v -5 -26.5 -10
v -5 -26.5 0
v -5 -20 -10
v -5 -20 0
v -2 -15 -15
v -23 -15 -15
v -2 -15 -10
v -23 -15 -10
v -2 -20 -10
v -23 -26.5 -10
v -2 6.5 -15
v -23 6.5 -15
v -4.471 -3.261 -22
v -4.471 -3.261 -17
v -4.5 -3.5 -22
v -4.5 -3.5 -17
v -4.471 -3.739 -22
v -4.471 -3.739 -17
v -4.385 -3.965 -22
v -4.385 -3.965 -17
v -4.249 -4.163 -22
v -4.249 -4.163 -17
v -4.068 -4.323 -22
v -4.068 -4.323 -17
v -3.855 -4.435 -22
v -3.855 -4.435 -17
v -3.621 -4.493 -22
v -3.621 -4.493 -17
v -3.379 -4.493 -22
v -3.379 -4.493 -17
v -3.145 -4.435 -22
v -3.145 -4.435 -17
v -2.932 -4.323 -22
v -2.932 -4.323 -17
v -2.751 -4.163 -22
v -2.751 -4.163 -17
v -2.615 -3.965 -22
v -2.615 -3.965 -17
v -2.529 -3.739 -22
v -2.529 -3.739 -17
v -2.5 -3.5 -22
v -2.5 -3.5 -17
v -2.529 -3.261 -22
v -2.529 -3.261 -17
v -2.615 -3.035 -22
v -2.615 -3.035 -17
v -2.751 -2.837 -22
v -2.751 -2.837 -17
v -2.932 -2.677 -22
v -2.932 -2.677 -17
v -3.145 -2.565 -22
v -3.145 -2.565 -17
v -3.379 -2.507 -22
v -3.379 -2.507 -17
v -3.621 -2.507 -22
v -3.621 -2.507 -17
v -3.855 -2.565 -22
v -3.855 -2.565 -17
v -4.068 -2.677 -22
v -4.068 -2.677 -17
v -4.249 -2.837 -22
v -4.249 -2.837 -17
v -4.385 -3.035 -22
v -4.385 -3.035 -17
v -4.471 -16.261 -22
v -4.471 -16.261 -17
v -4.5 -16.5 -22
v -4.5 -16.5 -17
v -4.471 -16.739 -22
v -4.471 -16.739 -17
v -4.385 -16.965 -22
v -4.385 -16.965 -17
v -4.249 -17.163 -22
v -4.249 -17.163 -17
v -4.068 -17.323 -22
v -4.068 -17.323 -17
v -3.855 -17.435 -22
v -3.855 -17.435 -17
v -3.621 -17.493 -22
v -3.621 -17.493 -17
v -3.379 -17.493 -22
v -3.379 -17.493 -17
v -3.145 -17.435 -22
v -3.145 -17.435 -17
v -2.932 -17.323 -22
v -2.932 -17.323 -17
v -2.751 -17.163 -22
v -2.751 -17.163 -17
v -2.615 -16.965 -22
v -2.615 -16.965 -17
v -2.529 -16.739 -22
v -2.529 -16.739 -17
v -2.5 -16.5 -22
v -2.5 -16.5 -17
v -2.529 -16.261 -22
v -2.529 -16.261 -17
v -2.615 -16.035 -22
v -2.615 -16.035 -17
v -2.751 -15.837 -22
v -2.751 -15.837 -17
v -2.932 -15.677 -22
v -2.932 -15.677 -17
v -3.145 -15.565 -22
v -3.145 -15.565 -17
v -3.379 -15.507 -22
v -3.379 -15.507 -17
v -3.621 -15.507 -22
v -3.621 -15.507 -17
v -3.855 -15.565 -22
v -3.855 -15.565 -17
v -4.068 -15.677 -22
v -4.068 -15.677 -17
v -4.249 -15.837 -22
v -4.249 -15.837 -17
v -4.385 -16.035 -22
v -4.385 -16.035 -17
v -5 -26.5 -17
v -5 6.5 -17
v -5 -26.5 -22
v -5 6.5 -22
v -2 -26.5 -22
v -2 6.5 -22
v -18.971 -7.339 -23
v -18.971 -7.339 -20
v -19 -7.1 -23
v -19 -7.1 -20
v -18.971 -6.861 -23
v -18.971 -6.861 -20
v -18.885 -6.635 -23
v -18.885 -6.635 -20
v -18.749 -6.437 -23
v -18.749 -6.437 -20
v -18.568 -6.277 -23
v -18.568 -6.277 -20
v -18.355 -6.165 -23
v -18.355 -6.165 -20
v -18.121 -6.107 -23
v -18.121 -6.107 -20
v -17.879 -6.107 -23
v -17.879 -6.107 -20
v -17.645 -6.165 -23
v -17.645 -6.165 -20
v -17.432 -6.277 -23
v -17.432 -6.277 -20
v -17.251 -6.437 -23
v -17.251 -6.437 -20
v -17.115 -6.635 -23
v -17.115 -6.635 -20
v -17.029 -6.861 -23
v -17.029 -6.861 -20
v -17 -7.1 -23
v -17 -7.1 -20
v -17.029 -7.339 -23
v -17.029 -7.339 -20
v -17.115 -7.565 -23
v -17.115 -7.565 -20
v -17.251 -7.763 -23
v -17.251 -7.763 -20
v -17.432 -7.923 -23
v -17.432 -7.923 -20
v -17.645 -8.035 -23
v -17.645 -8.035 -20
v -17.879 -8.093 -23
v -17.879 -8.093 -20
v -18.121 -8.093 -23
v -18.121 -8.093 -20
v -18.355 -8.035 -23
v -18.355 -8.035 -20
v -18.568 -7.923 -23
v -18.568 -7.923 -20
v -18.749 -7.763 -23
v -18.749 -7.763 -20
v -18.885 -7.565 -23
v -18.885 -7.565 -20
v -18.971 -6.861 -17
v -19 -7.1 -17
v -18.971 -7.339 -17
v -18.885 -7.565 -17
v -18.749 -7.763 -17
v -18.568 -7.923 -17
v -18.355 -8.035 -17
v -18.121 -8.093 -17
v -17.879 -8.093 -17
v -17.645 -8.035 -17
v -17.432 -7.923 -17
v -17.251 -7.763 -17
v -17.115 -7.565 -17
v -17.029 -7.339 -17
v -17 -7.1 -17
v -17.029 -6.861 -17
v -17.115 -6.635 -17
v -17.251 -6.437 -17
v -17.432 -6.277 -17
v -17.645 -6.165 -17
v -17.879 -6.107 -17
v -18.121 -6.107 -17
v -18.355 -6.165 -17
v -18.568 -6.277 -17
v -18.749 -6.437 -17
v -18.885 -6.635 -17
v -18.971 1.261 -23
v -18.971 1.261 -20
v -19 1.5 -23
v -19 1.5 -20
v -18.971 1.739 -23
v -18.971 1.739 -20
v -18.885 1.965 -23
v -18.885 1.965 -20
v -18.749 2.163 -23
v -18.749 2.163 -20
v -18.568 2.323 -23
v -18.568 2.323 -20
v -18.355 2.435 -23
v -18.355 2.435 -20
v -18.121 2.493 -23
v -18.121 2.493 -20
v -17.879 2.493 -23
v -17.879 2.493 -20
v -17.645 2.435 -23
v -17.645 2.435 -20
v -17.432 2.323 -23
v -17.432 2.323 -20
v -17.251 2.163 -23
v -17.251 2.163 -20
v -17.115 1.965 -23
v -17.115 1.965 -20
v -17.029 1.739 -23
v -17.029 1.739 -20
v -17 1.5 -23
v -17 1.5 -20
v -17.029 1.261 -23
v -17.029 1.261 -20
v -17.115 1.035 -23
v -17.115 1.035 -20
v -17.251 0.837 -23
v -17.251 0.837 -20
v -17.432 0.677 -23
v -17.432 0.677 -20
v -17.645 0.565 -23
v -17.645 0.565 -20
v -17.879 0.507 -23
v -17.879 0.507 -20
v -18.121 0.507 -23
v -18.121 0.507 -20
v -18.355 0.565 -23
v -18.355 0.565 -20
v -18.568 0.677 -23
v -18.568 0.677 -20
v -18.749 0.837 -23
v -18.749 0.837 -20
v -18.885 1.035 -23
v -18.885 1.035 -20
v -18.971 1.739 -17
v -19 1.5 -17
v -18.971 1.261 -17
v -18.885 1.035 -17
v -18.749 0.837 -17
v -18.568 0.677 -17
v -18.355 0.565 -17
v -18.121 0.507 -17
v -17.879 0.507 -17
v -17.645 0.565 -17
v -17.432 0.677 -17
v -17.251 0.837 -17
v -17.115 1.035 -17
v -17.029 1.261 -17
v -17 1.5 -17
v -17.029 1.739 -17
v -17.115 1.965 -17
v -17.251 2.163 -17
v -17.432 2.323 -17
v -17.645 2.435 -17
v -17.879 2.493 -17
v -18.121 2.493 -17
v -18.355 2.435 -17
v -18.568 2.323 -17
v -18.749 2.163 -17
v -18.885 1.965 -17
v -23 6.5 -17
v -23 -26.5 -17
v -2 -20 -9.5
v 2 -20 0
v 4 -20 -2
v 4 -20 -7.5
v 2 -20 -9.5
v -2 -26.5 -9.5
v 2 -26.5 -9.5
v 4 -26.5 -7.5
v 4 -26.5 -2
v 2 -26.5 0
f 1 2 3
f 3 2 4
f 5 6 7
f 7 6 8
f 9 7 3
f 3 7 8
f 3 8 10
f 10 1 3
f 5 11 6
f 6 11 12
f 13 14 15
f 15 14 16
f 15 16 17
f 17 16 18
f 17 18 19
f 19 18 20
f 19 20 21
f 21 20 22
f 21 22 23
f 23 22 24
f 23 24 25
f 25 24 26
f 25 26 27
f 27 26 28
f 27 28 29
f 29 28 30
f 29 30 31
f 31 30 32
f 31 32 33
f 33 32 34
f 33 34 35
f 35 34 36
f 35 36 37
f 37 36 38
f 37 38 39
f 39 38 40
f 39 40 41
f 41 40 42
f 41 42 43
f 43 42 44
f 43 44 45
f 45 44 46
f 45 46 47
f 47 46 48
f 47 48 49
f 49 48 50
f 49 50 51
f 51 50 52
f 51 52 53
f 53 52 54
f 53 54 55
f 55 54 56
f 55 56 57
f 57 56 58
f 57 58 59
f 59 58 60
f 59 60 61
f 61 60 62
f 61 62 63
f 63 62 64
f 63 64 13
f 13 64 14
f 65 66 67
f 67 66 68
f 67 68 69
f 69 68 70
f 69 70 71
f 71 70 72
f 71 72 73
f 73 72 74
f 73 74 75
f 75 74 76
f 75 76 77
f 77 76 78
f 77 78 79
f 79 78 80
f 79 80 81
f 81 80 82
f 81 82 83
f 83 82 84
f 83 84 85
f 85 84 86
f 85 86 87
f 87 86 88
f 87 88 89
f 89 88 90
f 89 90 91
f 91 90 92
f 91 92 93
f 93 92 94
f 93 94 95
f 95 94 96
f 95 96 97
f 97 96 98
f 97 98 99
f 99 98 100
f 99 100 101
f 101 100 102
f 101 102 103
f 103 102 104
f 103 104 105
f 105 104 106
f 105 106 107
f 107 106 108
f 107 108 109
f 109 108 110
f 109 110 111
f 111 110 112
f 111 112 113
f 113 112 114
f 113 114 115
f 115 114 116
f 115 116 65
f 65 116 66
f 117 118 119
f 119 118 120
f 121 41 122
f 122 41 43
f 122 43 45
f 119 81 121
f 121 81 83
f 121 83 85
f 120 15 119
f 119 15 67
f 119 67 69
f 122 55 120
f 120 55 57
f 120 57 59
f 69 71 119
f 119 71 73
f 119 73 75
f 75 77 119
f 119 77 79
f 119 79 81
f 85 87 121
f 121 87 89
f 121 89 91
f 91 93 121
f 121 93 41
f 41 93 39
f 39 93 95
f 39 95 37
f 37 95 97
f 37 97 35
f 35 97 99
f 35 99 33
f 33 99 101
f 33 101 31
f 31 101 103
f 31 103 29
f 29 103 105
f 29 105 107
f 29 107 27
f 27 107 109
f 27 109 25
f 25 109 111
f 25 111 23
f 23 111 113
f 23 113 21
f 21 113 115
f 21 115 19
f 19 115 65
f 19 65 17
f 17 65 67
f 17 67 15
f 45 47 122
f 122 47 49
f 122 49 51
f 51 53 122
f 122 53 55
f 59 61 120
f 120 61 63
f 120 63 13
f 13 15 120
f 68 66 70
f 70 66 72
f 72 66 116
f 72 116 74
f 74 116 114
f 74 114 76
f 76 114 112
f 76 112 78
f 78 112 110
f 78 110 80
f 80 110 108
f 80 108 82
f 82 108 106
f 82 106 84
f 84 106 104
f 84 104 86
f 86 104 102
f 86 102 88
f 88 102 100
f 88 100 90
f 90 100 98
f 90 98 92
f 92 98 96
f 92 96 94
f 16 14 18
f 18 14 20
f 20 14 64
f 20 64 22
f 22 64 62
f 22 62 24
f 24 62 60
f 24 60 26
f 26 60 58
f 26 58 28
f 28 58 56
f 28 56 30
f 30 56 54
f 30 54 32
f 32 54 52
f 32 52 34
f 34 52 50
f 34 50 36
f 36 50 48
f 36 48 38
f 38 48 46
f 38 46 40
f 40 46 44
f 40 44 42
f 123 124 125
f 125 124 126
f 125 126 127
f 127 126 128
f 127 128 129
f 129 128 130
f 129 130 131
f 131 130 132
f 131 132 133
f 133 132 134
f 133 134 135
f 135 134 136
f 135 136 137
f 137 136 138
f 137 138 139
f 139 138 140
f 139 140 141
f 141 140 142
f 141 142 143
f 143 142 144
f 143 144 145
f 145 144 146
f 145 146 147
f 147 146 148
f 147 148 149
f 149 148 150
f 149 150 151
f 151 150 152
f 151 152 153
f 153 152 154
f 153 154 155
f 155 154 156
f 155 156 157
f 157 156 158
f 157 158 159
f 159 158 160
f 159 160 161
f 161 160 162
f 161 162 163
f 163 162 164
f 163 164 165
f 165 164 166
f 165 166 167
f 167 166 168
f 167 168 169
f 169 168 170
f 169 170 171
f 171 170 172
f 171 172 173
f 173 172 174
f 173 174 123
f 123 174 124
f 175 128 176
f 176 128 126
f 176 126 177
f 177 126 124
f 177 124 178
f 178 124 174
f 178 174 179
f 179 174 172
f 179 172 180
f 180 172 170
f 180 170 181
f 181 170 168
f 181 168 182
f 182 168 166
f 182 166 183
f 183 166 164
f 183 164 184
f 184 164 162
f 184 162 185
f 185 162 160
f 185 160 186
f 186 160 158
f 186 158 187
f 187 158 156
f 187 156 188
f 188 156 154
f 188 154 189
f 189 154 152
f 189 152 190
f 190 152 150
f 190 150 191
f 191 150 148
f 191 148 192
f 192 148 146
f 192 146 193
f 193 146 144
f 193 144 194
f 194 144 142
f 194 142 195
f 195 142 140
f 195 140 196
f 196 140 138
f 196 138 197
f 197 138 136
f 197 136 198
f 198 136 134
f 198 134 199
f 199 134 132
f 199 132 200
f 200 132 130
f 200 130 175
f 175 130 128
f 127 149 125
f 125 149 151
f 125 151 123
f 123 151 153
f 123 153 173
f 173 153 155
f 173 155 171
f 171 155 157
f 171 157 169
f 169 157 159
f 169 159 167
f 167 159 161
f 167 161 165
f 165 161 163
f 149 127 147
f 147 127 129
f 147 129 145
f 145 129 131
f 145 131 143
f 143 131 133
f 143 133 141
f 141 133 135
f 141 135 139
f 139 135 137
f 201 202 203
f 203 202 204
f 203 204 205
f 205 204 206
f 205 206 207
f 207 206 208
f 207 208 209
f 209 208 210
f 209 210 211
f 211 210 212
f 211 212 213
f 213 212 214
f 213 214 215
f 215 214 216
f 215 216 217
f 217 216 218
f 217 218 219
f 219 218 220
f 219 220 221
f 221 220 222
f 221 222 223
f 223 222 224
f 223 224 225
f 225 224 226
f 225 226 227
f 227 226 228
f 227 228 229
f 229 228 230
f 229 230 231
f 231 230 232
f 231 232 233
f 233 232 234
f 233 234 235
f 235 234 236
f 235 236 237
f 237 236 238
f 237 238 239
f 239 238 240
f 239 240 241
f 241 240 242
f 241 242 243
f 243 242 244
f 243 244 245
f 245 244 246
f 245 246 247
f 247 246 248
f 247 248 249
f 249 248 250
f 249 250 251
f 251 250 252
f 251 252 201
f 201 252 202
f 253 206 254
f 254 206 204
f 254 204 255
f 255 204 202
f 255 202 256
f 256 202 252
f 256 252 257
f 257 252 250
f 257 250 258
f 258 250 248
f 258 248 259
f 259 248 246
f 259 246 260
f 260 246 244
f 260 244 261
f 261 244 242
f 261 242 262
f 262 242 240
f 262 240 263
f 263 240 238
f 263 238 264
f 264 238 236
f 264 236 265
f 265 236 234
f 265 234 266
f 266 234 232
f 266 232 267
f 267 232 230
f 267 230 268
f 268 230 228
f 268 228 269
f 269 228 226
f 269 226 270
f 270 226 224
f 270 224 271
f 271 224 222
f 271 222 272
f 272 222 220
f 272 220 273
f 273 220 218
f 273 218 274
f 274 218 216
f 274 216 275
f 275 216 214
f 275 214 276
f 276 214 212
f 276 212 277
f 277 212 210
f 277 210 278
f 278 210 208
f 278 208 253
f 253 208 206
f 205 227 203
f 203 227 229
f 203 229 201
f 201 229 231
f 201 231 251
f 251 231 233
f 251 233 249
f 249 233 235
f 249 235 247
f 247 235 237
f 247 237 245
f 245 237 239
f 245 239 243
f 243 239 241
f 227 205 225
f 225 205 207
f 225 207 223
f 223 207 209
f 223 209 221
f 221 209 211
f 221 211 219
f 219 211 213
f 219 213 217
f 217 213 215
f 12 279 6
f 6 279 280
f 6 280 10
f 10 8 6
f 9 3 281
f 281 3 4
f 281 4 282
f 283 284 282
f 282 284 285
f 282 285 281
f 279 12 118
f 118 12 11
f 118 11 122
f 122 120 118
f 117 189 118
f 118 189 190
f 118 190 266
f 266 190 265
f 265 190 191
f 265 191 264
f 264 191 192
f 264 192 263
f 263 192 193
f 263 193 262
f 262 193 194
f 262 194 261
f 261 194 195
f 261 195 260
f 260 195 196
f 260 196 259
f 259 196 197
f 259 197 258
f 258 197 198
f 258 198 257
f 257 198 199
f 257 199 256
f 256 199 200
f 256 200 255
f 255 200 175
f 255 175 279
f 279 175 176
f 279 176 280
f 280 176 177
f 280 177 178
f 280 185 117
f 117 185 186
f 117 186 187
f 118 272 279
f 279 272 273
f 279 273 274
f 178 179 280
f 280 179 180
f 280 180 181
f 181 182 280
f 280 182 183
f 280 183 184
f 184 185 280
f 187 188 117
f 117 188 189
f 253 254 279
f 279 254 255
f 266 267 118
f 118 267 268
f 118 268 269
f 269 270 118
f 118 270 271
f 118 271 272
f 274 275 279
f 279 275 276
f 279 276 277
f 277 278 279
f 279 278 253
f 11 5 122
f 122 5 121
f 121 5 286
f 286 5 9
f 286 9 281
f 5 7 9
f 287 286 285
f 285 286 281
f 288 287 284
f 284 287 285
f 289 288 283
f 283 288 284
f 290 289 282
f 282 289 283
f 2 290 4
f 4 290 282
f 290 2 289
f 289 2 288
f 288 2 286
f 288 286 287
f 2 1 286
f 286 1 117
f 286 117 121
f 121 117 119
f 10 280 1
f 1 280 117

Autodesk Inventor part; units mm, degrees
ref_plane "YZ Plane" through (0, 0, 0) normal (1, 0, 0) x (0, 1, 0)
ref_plane "XZ Plane" through (0, 0, 0) normal (0, 1, 0) x (-1, 0, 0)
sketch "Boceto1" plane through (0, 0, 0) normal (0, 1, 0) x (-1, 0, 0)
  line L0 (0, 0) -> (-4, 0)
  line L1 (-4, 0) -> (-4, -9.5)
  line L2 (-4, -9.5) -> (0, -9.5)
  line L3 (0, -9.5) -> (0, 0)
  dimension "d0" = 4
  dimension "d1" = 9.5
extrude "Extrusión1" add sketch "Boceto1" along normal blind 4
sketch "Boceto2" plane through (0, 0, -9.5) normal (-1, 0, 0) x (0, 0, 1)
  line L0 (9.5, 4) -> (0, 4) projected
  line L1 (9.5, 4) -> (-4.5, 4)
  line L2 (-4.5, 4) -> (-7.5, 4)
  line L3 (-5, 0) -> (-5, -16)
  line L4 (0, 0) -> (0, 4) projected
  line L5 (9.5, 0) -> (0, 0) projected
  line L6 (0, 0) -> (9.5, 0)
  line L7 (9.5, 0) -> (9.5, 4)
  line L8 (-5, -16) -> (-12.5, -16)
  line L9 (-12.5, -16) -> (-12.5, 4)
  line L10 (-12.5, 4) -> (-7.5, 4)
  line L11 (-5, 0) -> (9.5, 0)
  line L12 (-5, 4) -> (9.5, 4)
  line L13 (9.5, 0) -> (9.5, 4) projected
  line L14 (9.5, 0) -> (9.5, 4)
  dimension "d4" = 14
  dimension "d5" = 3
  dimension "d6" = 20
  dimension "d25" = 7.5
extrude "Extrusión2" add sketch "Boceto2" along normal blind 2 contours L7 L5 L4 L0
sketch "Boceto3" plane through (-2, 0, -9.5) normal (-1, 0, 0) x (0, 0, 1)
  line L0 (9.5, 4) -> (0, 4) projected
  line L1 (-7.5, 4) -> (-2.5, 4)
  line L2 (-2.5, 4) -> (-2.5, 1.5)
  line L3 (-2.5, 1.5) -> (-7.5, 1.5)
  line L4 (-7.5, 4) -> (-7.5, -16) projected
  line L5 (-7.5, 1.5) -> (-7.5, -4.5)
  line L6 (-7.5, -4.5) -> (-7.5, -10.5)
  line L7 (-7.5, -10.5) -> (-7.5, -13)
  line L8 (-7.5, -13) -> (-2.5, -13)
  line L9 (-2.5, -13) -> (-2.5, -10.5)
  line L10 (-2.5, -10.5) -> (-7.5, -10.5)
  line L11 (-7.5, -4.5) -> (-7.5, -5.75)
  line L12 (-7.5, -5.75) -> (-2.5, -5.75)
  line L13 (-2.5, -5.75) -> (-2.5, -3.25)
  line L14 (-2.5, -3.25) -> (-7.5, -3.25)
  point P0 (9.5, 0)
  dimension "d9" = 5
  dimension "d10" = 2.5
  dimension "d11" = 6
  dimension "d12" = 6
  dimension "d13" = 2.5
  dimension "d14" = 5
  dimension "d15" = 2.5
  dimension "d16" = 1.25
  dimension "d17" = 5
  dimension "d18" = 2.5
extrude "Extrusión3" cut sketch "Boceto3" against normal blind 1
chamfer "Chaflán1" distance 2 angle 45 2 edges at (4, 2, -9.5) (4, 2, 0)
sketch "Boceto4" plane through (-2, 0, -9.5) normal (-1, 0, 0) x (0, 0, 1)
  line L0 (0, 0) -> (9.5, 0) projected
  line L1 (9.5, 0) -> (0, 0)
  line L2 (0, 0) -> (-5, 0)
  line L3 (-5, 0) -> (-5, -20)
  line L4 (-5, -20) -> (-12.5, -20)
  line L5 (-12.5, -20) -> (-12.5, 4)
  line L6 (9.5, 4) -> (0, 4) projected
  line L7 (-12.5, 4) -> (9.5, 4)
  line L8 (9.5, 0) -> (9.5, 4) projected
  line L9 (9.5, 4) -> (9.5, 0)
  line L10 (-12.5, 4) -> (-7.5, 4)
  line L11 (-7.5, 4) -> (-7.5, 1.5)
  line L12 (-7.5, 1.5) -> (-12.5, 1.5)
  line L13 (-12.5, 1.2493) -> (-12.5, -4.7507)
  line L14 (-12.5, -4.7507) -> (-12.5, -10.7507)
  line L15 (-12.5, -10.7507) -> (-7.5, -10.7507)
  line L16 (-7.5, -10.7507) -> (-7.5, -13.2507)
  line L17 (-7.5, -13.2507) -> (-12.5, -13.2507)
  line L18 (-12.5, -4.7507) -> (-12.5, -6.0007)
  line L19 (-12.5, -6.0007) -> (-7.5, -6.0007)
  line L20 (-7.5, -6.0007) -> (-7.5, -3.5007)
  line L21 (-7.5, -3.5007) -> (-12.5, -3.5007)
  dimension "d26" = 5
  dimension "d27" = 20
  dimension "d28" = 7.5
  dimension "d29" = 5
  dimension "d30" = 2.5
  dimension "d31" = 6
  dimension "d32" = 6
  dimension "d33" = 5
  dimension "d34" = 2.5
  dimension "d35" = 1.25
  dimension "d36" = 2.5
extrude "Extrusión4" add sketch "Boceto4" along normal blind 3 contours L2 L3 L4 L5 L17 L16 L15 L19 L20 L21 L12 L11 L7 L6 L8 L0
sketch "Boceto5" plane through (0, 4, 0) normal (0, 1, 0) x (1, 0, 0)
  line L0 (-2, 17) -> (-5, 17) projected
  line L1 (-5, 17) -> (-2, 17)
  line L2 (-2, 14.5) -> (-2, 9.5) projected
  line L3 (-2, 17) -> (-2, 9.5)
  line L4 (2, 9.5) -> (-2, 9.5) projected
  line L5 (-2, 9.5) -> (2, 9.5)
  line L6 (4, 7.5) -> (2, 9.5) projected
  line L7 (2, 9.5) -> (4, 7.5)
  line L8 (4, 2) -> (4, 7.5) projected
  line L9 (4, 7.5) -> (4, 2)
  line L10 (2, 0) -> (4, 2) projected
  line L11 (4, 2) -> (2, 0)
  line L12 (2, 0) -> (-5, 0) projected
  line L13 (2, 0) -> (-5, 0)
  line L14 (-5, 0) -> (-5, 17) projected
  line L15 (-5, 0) -> (-5, 17)
  point P0 (0, 0)
extrude "Extrusión5" add sketch "Boceto5" along normal blind 2.5
sketch "Boceto7" plane through (-5, 0, -9.5) normal (-1, 0, 0) x (0, 0, 1)
  line L0 (-7.5, 1.5) -> (-7.5, 6.5) projected
  line L1 (-7.5, 1.5) -> (-7.5, -20)
  line L2 (-12.5, -20) -> (-5, -20) projected
  line L3 (-7.5, -20) -> (-5.5, -20)
  line L4 (-5.5, -20) -> (-5.5, 6.5)
  line L5 (0, 6.5) -> (-7.5, 6.5) projected
  line L6 (-7.5, 6.5) -> (-7.5, 1.5)
  point P0 (9.5, 0)
  dimension "d41" = 2
extrude "Extrusión6" add sketch "Boceto7" along normal blind 8
sketch "Boceto8" plane through (-2, -13.2507, -17) normal (0, 0, -1) x (-1, 0, 0)
  line L0 (0, 14.7507) -> (0, 19.7507) projected
  line L1 (0, 14.7507) -> (2, 14.7507)
  line L2 (2, 14.7507) -> (6, 14.7507)
  line L3 (6, 14.7507) -> (6, 19.7507)
  line L4 (3, 19.7507) -> (11, 19.7507) projected
  circle A0 centre (6, 14.7507) radius 1
  line L5 (6, 13.7507) -> (6, 7.7507)
  line L6 (6, 7.7507) -> (6, 6.1507)
  circle A1 centre (6, 6.1507) radius 1
  line L7 (6, 6.1507) -> (5.7406, 6.1507)
  point P0 (-2, 13.2507)
  dimension "d46" = 2
  dimension "d44" = 2
  dimension "d45" = 4
  dimension "d47" = 6
extrude "Extrusión7" add sketch "Boceto8" along normal blind 6
sketch "Boceto9" plane through (-2, -20, -14.5) normal (0, 0, 1) x (1, 0, 0)
  line L0 (0, 0) -> (0, 20) projected
  line L1 (0, 20) -> (-3, 20) projected
  line L2 (0, 20) -> (-3, 20)
  line L3 (-3, 0) -> (-11, 0) projected
  line L4 (-3, 20) -> (-3, 0)
  line L5 (0, 0) -> (-3, 0) projected
  line L6 (-3, 0) -> (0, 0)
  line L7 (0, 0) -> (0, 20)
  point P0 (2, 20)
extrude "Extrusión8" cut sketch "Boceto9" against normal blind 0.5
sketch "Boceto10" plane through (-2, -3.5007, -22) normal (0, 0, -1) x (-1, 0, 0)
  line L0 (0, 5.0007) -> (3, 5.0007) projected
  line L1 (0, 5.0007) -> (0, 0) projected
  line L2 (3, 5.0007) -> (0, 5.0007)
  line L3 (0, 5.0007) -> (0, 0)
  line L4 (0, 0) -> (3, 0)
  line L5 (3, 0) -> (3, 5.0007)
  line L6 (0, -2.5) -> (3, -2.5) projected
  line L7 (0, -7.25) -> (3, -7.25) projected
  line L8 (3, -2.5) -> (0, -2.5)
  line L9 (0, -2.5) -> (0, -7.25)
  line L10 (0, -7.25) -> (3, -7.25)
  line L11 (3, -7.25) -> (3, -2.5)
  line L12 (3, -16.4993) -> (3, -9.75) projected
  line L13 (0, 3.5007) -> (0, -16.4993) projected
  line L14 (3, -9.75) -> (0, -9.75)
  line L15 (0, -9.75) -> (0, -16.4993)
  line L16 (0, -16.4993) -> (3, -16.4993)
  line L17 (3, -16.4993) -> (3, -9.75)
  point P0 (-2, 3.5007)
extrude "Extrusión9" cut sketch "Boceto10" against normal blind 5
sketch "Boceto11" plane through (-5, 0, -15) normal (0, 0, 1) x (1, 0, 0)
  line L0 (0, 0) -> (0, -20)
  point P0 (5, 0)
  dimension "d58" = 20
ref_plane "Plano de trabajo1" through (0, -10, 0) normal (0, -1, 0) x (1, 0, 0)
mirror "Simetría1" about plane through (0, -10, 0) normal (0, -1, 0) of "Extrusión5"
sketch "Boceto12" plane through (-5, -24, 0) normal (0, 1, 0) x (1, 0, 0)
  line L0 (0, 0) -> (7, 0) projected
  line L1 (0, 17) -> (0, 0) projected
  line L2 (0, 0) -> (0, 17)
  line L3 (3, 9.5) -> (3, 17) projected
  line L4 (0, 17) -> (3, 17)
  line L5 (3, 17) -> (3, 9.5)
  line L6 (7, 9.5) -> (3, 9.5) projected
  line L7 (3, 9.5) -> (7, 9.5)
  line L8 (9, 7.5) -> (7, 9.5) projected
  line L9 (7, 9.5) -> (9, 7.5)
  line L10 (9, 2) -> (9, 7.5) projected
  line L11 (9, 7.5) -> (9, 2)
  line L12 (9, 2) -> (7, 0)
  line L13 (7, 0) -> (0, 0)
  point P0 (5, 0)
extrude "Extrusión10" add sketch "Boceto12" along normal blind 4
sketch "Boceto13" plane through (0, 6.5, 0) normal (0, 1, 0) x (1, 0, 0)
  line L0 (-5, 15) -> (-2, 15) projected
  line L1 (-5, 15) -> (10.3969, 15)
  line L2 (10.3969, 15) -> (10.0462, -8.8687)
  line L3 (10.0462, -8.8687) -> (-11.5494, -8.8687)
  line L4 (-11.5494, -8.8687) -> (-11.5494, 15)
  line L5 (-5, 15) -> (-13, 15) projected
  line L6 (-5, 15) -> (-11.5494, 15)
  point P0 (0, 0)
extrude "Extrusión11" cut sketch "Boceto13" against normal blind 9
sketch "Boceto14" plane through (-13, -20, -17) normal (0, -1, 0) x (1, 0, 0)
  line L0 (11, 0) -> (0, 0) projected
  line L1 (8, 2) -> (0, 2) projected
  line L2 (0, 0) -> (8, 0)
  line L3 (8, 0) -> (8, 2)
  line L4 (8, 2) -> (0, 2)
  line L5 (0, 2) -> (0, 0)
  point P0 (13, 17)
extrude "Extrusión12" add sketch "Boceto14" along normal blind 6.5
sketch "Boceto15" plane through (-2, 6.5, -17) normal (0, 0, -1) x (-1, 0, 0)
  line L0 (0, 0) -> (11, 0) projected
  line L1 (5.9919, 0) -> (15.9919, 0)
  line L2 (15.9919, 0) -> (15.9919, -33)
  circle A0 centre (6, -5) radius 1 projected
  line L3 (6, -5) -> (25.1824, -5)
  circle A1 centre (6, -13.6) radius 1 projected
  line L4 (6, -13.6) -> (25.934, -13.6)
  circle A2 centre (15.9919, -5) radius 1
  circle A3 centre (15.967, -13.6) radius 1
  line L5 (11, 0) -> (21, 0)
  line L6 (21, 0) -> (21, -33)
  line L7 (11, 0) -> (11, -33) projected
  line L8 (21, -33) -> (11, -33)
  line L9 (11, -33) -> (11, 0)
  point P0 (-2, -6.5)
  dimension "d66" = 10
  dimension "d67" = 2
  dimension "d68" = 2
  dimension "d69" = 10
extrude "Extrusión13" add sketch "Boceto15" against normal blind 2 contours L1 L2 A2 L3 L7 | L5 L6 L3 A2 L2 | L3 A2 L2 A3 L4 L7 | A2 L3 L2 | L2 L3 A2 | L3 L2 A2 | L4 A3 L2 L8 L7 | L3 A2 L2 | L3 L6 L4 A3 L2 A2 | A3 L2 L4 | L4 L2 A3 | L6 L8 L2 A3 L4 | A3 L4 L2 | L4 A3 L2
sketch "Boceto16" plane through (-2, -26.5, -17) normal (0, 0, -1) x (-1, 0, 0)
  circle A0 centre (6, 28) radius 1 projected
  line L0 (6, 28) -> (16, 28)
  circle A1 centre (6, 19.4) radius 1 projected
  line L1 (6, 19.4) -> (16, 19.4)
  circle A2 centre (16, 28) radius 1
  circle A3 centre (16, 19.4) radius 1
  point P0 (-2, 26.5)
  dimension "d72" = 10
  dimension "d73" = 10
  dimension "d74" = 2
  dimension "d75" = 2
extrude "Extrusión14" add sketch "Boceto16" along normal blind 6 contours A2 | A3
sketch "Boceto17" plane through (-8, -7.1, -23) normal (0, 0, -1) x (-1, 0, 0)
  line L0 (4.3511, -2.3199) -> (4.3511, 11.9603)
  line L1 (4.3511, 11.9603) -> (-3.8663, 11.9603)
  line L2 (-3.8663, 11.9603) -> (-3.8663, -2.9713)
  line L3 (-3.8663, -2.9713) -> (4.3511, -2.3199)
  point P0 (-8, 7.1)
extrude "Extrusión15" cut sketch "Boceto17" against normal blind 6
sketch "Boceto18" plane through (-2, -26.5, -17) normal (0, 0, -1) x (-1, 0, 0)
  line L0 (3, 6.5) -> (3, 0) projected
  line L1 (0, 0) -> (3, 0)
  line L2 (3, 0) -> (3, 33)
  line L3 (0, 33) -> (21, 33) projected
  line L4 (0, 33) -> (21, 33) projected
  line L5 (3, 33) -> (0, 33)
  line L6 (0, 33) -> (0, 0)
  line L7 (3, 0) -> (-4, 0) projected
  line L8 (-4, 0) -> (0, 0) projected
  line L9 (3, 0) -> (0, 0)
  line L10 (1.5, 33) -> (1.5, 0)
  line L11 (1.5, 33) -> (1.5, 23)
  circle A0 centre (1.5, 23) radius 1
  line L12 (1.5, 0) -> (1.5, 10)
  circle A1 centre (1.5, 10) radius 1
  point P0 (-2, 26.5)
  dimension "d82" = 10
  dimension "d83" = 2
  dimension "d84" = 10
  dimension "d85" = 2
extrude "Extrusión16" add sketch "Boceto18" along normal blind 5 contours L0 L1 L10 A1 A0 L3 L2 | L1 L6 L3 L10 A0 A1
sketch "Boceto19" plane through (-5, -20, -15) normal (0, 0, 1) x (1, 0, 0)
  line L0 (3, 0) -> (-18, 0)
  line L1 (-18, 26.5) -> (-18, -6.5) projected
  line L2 (-18, 0) -> (-18, 5)
  line L3 (-18, 5) -> (2.826, 5)
  line L4 (2.826, 5) -> (3, 5)
  line L5 (3, 26.5) -> (3, 0) projected
  line L6 (3, 5) -> (3, 0)
  point P0 (5, 20)
  dimension "d86" = 5
extrude "Extrusión17" add sketch "Boceto19" along normal blind 5
sketch "Boceto20" plane through (-23, -20, -15) normal (0, -1, 0) x (1, 0, 0)
  line L0 (0, 0) -> (0, 5) projected
  line L1 (0, 5) -> (18, 5) projected
  line L2 (0, 0) -> (18, 0)
  line L3 (18, 0) -> (18, 5)
  line L4 (18, 5) -> (0, 5)
  line L5 (0, 5) -> (0, 0)
  point P0 (23, 15)
extrude "Extrusión18" add sketch "Boceto20" along normal blind 6.5
sketch "Boceto21" plane through (-5, -26.5, -17) normal (-1, 0, 0) x (0, 0, 1)
  point P0 (17, 26.5)
properties part number "base_fin_carrera"
